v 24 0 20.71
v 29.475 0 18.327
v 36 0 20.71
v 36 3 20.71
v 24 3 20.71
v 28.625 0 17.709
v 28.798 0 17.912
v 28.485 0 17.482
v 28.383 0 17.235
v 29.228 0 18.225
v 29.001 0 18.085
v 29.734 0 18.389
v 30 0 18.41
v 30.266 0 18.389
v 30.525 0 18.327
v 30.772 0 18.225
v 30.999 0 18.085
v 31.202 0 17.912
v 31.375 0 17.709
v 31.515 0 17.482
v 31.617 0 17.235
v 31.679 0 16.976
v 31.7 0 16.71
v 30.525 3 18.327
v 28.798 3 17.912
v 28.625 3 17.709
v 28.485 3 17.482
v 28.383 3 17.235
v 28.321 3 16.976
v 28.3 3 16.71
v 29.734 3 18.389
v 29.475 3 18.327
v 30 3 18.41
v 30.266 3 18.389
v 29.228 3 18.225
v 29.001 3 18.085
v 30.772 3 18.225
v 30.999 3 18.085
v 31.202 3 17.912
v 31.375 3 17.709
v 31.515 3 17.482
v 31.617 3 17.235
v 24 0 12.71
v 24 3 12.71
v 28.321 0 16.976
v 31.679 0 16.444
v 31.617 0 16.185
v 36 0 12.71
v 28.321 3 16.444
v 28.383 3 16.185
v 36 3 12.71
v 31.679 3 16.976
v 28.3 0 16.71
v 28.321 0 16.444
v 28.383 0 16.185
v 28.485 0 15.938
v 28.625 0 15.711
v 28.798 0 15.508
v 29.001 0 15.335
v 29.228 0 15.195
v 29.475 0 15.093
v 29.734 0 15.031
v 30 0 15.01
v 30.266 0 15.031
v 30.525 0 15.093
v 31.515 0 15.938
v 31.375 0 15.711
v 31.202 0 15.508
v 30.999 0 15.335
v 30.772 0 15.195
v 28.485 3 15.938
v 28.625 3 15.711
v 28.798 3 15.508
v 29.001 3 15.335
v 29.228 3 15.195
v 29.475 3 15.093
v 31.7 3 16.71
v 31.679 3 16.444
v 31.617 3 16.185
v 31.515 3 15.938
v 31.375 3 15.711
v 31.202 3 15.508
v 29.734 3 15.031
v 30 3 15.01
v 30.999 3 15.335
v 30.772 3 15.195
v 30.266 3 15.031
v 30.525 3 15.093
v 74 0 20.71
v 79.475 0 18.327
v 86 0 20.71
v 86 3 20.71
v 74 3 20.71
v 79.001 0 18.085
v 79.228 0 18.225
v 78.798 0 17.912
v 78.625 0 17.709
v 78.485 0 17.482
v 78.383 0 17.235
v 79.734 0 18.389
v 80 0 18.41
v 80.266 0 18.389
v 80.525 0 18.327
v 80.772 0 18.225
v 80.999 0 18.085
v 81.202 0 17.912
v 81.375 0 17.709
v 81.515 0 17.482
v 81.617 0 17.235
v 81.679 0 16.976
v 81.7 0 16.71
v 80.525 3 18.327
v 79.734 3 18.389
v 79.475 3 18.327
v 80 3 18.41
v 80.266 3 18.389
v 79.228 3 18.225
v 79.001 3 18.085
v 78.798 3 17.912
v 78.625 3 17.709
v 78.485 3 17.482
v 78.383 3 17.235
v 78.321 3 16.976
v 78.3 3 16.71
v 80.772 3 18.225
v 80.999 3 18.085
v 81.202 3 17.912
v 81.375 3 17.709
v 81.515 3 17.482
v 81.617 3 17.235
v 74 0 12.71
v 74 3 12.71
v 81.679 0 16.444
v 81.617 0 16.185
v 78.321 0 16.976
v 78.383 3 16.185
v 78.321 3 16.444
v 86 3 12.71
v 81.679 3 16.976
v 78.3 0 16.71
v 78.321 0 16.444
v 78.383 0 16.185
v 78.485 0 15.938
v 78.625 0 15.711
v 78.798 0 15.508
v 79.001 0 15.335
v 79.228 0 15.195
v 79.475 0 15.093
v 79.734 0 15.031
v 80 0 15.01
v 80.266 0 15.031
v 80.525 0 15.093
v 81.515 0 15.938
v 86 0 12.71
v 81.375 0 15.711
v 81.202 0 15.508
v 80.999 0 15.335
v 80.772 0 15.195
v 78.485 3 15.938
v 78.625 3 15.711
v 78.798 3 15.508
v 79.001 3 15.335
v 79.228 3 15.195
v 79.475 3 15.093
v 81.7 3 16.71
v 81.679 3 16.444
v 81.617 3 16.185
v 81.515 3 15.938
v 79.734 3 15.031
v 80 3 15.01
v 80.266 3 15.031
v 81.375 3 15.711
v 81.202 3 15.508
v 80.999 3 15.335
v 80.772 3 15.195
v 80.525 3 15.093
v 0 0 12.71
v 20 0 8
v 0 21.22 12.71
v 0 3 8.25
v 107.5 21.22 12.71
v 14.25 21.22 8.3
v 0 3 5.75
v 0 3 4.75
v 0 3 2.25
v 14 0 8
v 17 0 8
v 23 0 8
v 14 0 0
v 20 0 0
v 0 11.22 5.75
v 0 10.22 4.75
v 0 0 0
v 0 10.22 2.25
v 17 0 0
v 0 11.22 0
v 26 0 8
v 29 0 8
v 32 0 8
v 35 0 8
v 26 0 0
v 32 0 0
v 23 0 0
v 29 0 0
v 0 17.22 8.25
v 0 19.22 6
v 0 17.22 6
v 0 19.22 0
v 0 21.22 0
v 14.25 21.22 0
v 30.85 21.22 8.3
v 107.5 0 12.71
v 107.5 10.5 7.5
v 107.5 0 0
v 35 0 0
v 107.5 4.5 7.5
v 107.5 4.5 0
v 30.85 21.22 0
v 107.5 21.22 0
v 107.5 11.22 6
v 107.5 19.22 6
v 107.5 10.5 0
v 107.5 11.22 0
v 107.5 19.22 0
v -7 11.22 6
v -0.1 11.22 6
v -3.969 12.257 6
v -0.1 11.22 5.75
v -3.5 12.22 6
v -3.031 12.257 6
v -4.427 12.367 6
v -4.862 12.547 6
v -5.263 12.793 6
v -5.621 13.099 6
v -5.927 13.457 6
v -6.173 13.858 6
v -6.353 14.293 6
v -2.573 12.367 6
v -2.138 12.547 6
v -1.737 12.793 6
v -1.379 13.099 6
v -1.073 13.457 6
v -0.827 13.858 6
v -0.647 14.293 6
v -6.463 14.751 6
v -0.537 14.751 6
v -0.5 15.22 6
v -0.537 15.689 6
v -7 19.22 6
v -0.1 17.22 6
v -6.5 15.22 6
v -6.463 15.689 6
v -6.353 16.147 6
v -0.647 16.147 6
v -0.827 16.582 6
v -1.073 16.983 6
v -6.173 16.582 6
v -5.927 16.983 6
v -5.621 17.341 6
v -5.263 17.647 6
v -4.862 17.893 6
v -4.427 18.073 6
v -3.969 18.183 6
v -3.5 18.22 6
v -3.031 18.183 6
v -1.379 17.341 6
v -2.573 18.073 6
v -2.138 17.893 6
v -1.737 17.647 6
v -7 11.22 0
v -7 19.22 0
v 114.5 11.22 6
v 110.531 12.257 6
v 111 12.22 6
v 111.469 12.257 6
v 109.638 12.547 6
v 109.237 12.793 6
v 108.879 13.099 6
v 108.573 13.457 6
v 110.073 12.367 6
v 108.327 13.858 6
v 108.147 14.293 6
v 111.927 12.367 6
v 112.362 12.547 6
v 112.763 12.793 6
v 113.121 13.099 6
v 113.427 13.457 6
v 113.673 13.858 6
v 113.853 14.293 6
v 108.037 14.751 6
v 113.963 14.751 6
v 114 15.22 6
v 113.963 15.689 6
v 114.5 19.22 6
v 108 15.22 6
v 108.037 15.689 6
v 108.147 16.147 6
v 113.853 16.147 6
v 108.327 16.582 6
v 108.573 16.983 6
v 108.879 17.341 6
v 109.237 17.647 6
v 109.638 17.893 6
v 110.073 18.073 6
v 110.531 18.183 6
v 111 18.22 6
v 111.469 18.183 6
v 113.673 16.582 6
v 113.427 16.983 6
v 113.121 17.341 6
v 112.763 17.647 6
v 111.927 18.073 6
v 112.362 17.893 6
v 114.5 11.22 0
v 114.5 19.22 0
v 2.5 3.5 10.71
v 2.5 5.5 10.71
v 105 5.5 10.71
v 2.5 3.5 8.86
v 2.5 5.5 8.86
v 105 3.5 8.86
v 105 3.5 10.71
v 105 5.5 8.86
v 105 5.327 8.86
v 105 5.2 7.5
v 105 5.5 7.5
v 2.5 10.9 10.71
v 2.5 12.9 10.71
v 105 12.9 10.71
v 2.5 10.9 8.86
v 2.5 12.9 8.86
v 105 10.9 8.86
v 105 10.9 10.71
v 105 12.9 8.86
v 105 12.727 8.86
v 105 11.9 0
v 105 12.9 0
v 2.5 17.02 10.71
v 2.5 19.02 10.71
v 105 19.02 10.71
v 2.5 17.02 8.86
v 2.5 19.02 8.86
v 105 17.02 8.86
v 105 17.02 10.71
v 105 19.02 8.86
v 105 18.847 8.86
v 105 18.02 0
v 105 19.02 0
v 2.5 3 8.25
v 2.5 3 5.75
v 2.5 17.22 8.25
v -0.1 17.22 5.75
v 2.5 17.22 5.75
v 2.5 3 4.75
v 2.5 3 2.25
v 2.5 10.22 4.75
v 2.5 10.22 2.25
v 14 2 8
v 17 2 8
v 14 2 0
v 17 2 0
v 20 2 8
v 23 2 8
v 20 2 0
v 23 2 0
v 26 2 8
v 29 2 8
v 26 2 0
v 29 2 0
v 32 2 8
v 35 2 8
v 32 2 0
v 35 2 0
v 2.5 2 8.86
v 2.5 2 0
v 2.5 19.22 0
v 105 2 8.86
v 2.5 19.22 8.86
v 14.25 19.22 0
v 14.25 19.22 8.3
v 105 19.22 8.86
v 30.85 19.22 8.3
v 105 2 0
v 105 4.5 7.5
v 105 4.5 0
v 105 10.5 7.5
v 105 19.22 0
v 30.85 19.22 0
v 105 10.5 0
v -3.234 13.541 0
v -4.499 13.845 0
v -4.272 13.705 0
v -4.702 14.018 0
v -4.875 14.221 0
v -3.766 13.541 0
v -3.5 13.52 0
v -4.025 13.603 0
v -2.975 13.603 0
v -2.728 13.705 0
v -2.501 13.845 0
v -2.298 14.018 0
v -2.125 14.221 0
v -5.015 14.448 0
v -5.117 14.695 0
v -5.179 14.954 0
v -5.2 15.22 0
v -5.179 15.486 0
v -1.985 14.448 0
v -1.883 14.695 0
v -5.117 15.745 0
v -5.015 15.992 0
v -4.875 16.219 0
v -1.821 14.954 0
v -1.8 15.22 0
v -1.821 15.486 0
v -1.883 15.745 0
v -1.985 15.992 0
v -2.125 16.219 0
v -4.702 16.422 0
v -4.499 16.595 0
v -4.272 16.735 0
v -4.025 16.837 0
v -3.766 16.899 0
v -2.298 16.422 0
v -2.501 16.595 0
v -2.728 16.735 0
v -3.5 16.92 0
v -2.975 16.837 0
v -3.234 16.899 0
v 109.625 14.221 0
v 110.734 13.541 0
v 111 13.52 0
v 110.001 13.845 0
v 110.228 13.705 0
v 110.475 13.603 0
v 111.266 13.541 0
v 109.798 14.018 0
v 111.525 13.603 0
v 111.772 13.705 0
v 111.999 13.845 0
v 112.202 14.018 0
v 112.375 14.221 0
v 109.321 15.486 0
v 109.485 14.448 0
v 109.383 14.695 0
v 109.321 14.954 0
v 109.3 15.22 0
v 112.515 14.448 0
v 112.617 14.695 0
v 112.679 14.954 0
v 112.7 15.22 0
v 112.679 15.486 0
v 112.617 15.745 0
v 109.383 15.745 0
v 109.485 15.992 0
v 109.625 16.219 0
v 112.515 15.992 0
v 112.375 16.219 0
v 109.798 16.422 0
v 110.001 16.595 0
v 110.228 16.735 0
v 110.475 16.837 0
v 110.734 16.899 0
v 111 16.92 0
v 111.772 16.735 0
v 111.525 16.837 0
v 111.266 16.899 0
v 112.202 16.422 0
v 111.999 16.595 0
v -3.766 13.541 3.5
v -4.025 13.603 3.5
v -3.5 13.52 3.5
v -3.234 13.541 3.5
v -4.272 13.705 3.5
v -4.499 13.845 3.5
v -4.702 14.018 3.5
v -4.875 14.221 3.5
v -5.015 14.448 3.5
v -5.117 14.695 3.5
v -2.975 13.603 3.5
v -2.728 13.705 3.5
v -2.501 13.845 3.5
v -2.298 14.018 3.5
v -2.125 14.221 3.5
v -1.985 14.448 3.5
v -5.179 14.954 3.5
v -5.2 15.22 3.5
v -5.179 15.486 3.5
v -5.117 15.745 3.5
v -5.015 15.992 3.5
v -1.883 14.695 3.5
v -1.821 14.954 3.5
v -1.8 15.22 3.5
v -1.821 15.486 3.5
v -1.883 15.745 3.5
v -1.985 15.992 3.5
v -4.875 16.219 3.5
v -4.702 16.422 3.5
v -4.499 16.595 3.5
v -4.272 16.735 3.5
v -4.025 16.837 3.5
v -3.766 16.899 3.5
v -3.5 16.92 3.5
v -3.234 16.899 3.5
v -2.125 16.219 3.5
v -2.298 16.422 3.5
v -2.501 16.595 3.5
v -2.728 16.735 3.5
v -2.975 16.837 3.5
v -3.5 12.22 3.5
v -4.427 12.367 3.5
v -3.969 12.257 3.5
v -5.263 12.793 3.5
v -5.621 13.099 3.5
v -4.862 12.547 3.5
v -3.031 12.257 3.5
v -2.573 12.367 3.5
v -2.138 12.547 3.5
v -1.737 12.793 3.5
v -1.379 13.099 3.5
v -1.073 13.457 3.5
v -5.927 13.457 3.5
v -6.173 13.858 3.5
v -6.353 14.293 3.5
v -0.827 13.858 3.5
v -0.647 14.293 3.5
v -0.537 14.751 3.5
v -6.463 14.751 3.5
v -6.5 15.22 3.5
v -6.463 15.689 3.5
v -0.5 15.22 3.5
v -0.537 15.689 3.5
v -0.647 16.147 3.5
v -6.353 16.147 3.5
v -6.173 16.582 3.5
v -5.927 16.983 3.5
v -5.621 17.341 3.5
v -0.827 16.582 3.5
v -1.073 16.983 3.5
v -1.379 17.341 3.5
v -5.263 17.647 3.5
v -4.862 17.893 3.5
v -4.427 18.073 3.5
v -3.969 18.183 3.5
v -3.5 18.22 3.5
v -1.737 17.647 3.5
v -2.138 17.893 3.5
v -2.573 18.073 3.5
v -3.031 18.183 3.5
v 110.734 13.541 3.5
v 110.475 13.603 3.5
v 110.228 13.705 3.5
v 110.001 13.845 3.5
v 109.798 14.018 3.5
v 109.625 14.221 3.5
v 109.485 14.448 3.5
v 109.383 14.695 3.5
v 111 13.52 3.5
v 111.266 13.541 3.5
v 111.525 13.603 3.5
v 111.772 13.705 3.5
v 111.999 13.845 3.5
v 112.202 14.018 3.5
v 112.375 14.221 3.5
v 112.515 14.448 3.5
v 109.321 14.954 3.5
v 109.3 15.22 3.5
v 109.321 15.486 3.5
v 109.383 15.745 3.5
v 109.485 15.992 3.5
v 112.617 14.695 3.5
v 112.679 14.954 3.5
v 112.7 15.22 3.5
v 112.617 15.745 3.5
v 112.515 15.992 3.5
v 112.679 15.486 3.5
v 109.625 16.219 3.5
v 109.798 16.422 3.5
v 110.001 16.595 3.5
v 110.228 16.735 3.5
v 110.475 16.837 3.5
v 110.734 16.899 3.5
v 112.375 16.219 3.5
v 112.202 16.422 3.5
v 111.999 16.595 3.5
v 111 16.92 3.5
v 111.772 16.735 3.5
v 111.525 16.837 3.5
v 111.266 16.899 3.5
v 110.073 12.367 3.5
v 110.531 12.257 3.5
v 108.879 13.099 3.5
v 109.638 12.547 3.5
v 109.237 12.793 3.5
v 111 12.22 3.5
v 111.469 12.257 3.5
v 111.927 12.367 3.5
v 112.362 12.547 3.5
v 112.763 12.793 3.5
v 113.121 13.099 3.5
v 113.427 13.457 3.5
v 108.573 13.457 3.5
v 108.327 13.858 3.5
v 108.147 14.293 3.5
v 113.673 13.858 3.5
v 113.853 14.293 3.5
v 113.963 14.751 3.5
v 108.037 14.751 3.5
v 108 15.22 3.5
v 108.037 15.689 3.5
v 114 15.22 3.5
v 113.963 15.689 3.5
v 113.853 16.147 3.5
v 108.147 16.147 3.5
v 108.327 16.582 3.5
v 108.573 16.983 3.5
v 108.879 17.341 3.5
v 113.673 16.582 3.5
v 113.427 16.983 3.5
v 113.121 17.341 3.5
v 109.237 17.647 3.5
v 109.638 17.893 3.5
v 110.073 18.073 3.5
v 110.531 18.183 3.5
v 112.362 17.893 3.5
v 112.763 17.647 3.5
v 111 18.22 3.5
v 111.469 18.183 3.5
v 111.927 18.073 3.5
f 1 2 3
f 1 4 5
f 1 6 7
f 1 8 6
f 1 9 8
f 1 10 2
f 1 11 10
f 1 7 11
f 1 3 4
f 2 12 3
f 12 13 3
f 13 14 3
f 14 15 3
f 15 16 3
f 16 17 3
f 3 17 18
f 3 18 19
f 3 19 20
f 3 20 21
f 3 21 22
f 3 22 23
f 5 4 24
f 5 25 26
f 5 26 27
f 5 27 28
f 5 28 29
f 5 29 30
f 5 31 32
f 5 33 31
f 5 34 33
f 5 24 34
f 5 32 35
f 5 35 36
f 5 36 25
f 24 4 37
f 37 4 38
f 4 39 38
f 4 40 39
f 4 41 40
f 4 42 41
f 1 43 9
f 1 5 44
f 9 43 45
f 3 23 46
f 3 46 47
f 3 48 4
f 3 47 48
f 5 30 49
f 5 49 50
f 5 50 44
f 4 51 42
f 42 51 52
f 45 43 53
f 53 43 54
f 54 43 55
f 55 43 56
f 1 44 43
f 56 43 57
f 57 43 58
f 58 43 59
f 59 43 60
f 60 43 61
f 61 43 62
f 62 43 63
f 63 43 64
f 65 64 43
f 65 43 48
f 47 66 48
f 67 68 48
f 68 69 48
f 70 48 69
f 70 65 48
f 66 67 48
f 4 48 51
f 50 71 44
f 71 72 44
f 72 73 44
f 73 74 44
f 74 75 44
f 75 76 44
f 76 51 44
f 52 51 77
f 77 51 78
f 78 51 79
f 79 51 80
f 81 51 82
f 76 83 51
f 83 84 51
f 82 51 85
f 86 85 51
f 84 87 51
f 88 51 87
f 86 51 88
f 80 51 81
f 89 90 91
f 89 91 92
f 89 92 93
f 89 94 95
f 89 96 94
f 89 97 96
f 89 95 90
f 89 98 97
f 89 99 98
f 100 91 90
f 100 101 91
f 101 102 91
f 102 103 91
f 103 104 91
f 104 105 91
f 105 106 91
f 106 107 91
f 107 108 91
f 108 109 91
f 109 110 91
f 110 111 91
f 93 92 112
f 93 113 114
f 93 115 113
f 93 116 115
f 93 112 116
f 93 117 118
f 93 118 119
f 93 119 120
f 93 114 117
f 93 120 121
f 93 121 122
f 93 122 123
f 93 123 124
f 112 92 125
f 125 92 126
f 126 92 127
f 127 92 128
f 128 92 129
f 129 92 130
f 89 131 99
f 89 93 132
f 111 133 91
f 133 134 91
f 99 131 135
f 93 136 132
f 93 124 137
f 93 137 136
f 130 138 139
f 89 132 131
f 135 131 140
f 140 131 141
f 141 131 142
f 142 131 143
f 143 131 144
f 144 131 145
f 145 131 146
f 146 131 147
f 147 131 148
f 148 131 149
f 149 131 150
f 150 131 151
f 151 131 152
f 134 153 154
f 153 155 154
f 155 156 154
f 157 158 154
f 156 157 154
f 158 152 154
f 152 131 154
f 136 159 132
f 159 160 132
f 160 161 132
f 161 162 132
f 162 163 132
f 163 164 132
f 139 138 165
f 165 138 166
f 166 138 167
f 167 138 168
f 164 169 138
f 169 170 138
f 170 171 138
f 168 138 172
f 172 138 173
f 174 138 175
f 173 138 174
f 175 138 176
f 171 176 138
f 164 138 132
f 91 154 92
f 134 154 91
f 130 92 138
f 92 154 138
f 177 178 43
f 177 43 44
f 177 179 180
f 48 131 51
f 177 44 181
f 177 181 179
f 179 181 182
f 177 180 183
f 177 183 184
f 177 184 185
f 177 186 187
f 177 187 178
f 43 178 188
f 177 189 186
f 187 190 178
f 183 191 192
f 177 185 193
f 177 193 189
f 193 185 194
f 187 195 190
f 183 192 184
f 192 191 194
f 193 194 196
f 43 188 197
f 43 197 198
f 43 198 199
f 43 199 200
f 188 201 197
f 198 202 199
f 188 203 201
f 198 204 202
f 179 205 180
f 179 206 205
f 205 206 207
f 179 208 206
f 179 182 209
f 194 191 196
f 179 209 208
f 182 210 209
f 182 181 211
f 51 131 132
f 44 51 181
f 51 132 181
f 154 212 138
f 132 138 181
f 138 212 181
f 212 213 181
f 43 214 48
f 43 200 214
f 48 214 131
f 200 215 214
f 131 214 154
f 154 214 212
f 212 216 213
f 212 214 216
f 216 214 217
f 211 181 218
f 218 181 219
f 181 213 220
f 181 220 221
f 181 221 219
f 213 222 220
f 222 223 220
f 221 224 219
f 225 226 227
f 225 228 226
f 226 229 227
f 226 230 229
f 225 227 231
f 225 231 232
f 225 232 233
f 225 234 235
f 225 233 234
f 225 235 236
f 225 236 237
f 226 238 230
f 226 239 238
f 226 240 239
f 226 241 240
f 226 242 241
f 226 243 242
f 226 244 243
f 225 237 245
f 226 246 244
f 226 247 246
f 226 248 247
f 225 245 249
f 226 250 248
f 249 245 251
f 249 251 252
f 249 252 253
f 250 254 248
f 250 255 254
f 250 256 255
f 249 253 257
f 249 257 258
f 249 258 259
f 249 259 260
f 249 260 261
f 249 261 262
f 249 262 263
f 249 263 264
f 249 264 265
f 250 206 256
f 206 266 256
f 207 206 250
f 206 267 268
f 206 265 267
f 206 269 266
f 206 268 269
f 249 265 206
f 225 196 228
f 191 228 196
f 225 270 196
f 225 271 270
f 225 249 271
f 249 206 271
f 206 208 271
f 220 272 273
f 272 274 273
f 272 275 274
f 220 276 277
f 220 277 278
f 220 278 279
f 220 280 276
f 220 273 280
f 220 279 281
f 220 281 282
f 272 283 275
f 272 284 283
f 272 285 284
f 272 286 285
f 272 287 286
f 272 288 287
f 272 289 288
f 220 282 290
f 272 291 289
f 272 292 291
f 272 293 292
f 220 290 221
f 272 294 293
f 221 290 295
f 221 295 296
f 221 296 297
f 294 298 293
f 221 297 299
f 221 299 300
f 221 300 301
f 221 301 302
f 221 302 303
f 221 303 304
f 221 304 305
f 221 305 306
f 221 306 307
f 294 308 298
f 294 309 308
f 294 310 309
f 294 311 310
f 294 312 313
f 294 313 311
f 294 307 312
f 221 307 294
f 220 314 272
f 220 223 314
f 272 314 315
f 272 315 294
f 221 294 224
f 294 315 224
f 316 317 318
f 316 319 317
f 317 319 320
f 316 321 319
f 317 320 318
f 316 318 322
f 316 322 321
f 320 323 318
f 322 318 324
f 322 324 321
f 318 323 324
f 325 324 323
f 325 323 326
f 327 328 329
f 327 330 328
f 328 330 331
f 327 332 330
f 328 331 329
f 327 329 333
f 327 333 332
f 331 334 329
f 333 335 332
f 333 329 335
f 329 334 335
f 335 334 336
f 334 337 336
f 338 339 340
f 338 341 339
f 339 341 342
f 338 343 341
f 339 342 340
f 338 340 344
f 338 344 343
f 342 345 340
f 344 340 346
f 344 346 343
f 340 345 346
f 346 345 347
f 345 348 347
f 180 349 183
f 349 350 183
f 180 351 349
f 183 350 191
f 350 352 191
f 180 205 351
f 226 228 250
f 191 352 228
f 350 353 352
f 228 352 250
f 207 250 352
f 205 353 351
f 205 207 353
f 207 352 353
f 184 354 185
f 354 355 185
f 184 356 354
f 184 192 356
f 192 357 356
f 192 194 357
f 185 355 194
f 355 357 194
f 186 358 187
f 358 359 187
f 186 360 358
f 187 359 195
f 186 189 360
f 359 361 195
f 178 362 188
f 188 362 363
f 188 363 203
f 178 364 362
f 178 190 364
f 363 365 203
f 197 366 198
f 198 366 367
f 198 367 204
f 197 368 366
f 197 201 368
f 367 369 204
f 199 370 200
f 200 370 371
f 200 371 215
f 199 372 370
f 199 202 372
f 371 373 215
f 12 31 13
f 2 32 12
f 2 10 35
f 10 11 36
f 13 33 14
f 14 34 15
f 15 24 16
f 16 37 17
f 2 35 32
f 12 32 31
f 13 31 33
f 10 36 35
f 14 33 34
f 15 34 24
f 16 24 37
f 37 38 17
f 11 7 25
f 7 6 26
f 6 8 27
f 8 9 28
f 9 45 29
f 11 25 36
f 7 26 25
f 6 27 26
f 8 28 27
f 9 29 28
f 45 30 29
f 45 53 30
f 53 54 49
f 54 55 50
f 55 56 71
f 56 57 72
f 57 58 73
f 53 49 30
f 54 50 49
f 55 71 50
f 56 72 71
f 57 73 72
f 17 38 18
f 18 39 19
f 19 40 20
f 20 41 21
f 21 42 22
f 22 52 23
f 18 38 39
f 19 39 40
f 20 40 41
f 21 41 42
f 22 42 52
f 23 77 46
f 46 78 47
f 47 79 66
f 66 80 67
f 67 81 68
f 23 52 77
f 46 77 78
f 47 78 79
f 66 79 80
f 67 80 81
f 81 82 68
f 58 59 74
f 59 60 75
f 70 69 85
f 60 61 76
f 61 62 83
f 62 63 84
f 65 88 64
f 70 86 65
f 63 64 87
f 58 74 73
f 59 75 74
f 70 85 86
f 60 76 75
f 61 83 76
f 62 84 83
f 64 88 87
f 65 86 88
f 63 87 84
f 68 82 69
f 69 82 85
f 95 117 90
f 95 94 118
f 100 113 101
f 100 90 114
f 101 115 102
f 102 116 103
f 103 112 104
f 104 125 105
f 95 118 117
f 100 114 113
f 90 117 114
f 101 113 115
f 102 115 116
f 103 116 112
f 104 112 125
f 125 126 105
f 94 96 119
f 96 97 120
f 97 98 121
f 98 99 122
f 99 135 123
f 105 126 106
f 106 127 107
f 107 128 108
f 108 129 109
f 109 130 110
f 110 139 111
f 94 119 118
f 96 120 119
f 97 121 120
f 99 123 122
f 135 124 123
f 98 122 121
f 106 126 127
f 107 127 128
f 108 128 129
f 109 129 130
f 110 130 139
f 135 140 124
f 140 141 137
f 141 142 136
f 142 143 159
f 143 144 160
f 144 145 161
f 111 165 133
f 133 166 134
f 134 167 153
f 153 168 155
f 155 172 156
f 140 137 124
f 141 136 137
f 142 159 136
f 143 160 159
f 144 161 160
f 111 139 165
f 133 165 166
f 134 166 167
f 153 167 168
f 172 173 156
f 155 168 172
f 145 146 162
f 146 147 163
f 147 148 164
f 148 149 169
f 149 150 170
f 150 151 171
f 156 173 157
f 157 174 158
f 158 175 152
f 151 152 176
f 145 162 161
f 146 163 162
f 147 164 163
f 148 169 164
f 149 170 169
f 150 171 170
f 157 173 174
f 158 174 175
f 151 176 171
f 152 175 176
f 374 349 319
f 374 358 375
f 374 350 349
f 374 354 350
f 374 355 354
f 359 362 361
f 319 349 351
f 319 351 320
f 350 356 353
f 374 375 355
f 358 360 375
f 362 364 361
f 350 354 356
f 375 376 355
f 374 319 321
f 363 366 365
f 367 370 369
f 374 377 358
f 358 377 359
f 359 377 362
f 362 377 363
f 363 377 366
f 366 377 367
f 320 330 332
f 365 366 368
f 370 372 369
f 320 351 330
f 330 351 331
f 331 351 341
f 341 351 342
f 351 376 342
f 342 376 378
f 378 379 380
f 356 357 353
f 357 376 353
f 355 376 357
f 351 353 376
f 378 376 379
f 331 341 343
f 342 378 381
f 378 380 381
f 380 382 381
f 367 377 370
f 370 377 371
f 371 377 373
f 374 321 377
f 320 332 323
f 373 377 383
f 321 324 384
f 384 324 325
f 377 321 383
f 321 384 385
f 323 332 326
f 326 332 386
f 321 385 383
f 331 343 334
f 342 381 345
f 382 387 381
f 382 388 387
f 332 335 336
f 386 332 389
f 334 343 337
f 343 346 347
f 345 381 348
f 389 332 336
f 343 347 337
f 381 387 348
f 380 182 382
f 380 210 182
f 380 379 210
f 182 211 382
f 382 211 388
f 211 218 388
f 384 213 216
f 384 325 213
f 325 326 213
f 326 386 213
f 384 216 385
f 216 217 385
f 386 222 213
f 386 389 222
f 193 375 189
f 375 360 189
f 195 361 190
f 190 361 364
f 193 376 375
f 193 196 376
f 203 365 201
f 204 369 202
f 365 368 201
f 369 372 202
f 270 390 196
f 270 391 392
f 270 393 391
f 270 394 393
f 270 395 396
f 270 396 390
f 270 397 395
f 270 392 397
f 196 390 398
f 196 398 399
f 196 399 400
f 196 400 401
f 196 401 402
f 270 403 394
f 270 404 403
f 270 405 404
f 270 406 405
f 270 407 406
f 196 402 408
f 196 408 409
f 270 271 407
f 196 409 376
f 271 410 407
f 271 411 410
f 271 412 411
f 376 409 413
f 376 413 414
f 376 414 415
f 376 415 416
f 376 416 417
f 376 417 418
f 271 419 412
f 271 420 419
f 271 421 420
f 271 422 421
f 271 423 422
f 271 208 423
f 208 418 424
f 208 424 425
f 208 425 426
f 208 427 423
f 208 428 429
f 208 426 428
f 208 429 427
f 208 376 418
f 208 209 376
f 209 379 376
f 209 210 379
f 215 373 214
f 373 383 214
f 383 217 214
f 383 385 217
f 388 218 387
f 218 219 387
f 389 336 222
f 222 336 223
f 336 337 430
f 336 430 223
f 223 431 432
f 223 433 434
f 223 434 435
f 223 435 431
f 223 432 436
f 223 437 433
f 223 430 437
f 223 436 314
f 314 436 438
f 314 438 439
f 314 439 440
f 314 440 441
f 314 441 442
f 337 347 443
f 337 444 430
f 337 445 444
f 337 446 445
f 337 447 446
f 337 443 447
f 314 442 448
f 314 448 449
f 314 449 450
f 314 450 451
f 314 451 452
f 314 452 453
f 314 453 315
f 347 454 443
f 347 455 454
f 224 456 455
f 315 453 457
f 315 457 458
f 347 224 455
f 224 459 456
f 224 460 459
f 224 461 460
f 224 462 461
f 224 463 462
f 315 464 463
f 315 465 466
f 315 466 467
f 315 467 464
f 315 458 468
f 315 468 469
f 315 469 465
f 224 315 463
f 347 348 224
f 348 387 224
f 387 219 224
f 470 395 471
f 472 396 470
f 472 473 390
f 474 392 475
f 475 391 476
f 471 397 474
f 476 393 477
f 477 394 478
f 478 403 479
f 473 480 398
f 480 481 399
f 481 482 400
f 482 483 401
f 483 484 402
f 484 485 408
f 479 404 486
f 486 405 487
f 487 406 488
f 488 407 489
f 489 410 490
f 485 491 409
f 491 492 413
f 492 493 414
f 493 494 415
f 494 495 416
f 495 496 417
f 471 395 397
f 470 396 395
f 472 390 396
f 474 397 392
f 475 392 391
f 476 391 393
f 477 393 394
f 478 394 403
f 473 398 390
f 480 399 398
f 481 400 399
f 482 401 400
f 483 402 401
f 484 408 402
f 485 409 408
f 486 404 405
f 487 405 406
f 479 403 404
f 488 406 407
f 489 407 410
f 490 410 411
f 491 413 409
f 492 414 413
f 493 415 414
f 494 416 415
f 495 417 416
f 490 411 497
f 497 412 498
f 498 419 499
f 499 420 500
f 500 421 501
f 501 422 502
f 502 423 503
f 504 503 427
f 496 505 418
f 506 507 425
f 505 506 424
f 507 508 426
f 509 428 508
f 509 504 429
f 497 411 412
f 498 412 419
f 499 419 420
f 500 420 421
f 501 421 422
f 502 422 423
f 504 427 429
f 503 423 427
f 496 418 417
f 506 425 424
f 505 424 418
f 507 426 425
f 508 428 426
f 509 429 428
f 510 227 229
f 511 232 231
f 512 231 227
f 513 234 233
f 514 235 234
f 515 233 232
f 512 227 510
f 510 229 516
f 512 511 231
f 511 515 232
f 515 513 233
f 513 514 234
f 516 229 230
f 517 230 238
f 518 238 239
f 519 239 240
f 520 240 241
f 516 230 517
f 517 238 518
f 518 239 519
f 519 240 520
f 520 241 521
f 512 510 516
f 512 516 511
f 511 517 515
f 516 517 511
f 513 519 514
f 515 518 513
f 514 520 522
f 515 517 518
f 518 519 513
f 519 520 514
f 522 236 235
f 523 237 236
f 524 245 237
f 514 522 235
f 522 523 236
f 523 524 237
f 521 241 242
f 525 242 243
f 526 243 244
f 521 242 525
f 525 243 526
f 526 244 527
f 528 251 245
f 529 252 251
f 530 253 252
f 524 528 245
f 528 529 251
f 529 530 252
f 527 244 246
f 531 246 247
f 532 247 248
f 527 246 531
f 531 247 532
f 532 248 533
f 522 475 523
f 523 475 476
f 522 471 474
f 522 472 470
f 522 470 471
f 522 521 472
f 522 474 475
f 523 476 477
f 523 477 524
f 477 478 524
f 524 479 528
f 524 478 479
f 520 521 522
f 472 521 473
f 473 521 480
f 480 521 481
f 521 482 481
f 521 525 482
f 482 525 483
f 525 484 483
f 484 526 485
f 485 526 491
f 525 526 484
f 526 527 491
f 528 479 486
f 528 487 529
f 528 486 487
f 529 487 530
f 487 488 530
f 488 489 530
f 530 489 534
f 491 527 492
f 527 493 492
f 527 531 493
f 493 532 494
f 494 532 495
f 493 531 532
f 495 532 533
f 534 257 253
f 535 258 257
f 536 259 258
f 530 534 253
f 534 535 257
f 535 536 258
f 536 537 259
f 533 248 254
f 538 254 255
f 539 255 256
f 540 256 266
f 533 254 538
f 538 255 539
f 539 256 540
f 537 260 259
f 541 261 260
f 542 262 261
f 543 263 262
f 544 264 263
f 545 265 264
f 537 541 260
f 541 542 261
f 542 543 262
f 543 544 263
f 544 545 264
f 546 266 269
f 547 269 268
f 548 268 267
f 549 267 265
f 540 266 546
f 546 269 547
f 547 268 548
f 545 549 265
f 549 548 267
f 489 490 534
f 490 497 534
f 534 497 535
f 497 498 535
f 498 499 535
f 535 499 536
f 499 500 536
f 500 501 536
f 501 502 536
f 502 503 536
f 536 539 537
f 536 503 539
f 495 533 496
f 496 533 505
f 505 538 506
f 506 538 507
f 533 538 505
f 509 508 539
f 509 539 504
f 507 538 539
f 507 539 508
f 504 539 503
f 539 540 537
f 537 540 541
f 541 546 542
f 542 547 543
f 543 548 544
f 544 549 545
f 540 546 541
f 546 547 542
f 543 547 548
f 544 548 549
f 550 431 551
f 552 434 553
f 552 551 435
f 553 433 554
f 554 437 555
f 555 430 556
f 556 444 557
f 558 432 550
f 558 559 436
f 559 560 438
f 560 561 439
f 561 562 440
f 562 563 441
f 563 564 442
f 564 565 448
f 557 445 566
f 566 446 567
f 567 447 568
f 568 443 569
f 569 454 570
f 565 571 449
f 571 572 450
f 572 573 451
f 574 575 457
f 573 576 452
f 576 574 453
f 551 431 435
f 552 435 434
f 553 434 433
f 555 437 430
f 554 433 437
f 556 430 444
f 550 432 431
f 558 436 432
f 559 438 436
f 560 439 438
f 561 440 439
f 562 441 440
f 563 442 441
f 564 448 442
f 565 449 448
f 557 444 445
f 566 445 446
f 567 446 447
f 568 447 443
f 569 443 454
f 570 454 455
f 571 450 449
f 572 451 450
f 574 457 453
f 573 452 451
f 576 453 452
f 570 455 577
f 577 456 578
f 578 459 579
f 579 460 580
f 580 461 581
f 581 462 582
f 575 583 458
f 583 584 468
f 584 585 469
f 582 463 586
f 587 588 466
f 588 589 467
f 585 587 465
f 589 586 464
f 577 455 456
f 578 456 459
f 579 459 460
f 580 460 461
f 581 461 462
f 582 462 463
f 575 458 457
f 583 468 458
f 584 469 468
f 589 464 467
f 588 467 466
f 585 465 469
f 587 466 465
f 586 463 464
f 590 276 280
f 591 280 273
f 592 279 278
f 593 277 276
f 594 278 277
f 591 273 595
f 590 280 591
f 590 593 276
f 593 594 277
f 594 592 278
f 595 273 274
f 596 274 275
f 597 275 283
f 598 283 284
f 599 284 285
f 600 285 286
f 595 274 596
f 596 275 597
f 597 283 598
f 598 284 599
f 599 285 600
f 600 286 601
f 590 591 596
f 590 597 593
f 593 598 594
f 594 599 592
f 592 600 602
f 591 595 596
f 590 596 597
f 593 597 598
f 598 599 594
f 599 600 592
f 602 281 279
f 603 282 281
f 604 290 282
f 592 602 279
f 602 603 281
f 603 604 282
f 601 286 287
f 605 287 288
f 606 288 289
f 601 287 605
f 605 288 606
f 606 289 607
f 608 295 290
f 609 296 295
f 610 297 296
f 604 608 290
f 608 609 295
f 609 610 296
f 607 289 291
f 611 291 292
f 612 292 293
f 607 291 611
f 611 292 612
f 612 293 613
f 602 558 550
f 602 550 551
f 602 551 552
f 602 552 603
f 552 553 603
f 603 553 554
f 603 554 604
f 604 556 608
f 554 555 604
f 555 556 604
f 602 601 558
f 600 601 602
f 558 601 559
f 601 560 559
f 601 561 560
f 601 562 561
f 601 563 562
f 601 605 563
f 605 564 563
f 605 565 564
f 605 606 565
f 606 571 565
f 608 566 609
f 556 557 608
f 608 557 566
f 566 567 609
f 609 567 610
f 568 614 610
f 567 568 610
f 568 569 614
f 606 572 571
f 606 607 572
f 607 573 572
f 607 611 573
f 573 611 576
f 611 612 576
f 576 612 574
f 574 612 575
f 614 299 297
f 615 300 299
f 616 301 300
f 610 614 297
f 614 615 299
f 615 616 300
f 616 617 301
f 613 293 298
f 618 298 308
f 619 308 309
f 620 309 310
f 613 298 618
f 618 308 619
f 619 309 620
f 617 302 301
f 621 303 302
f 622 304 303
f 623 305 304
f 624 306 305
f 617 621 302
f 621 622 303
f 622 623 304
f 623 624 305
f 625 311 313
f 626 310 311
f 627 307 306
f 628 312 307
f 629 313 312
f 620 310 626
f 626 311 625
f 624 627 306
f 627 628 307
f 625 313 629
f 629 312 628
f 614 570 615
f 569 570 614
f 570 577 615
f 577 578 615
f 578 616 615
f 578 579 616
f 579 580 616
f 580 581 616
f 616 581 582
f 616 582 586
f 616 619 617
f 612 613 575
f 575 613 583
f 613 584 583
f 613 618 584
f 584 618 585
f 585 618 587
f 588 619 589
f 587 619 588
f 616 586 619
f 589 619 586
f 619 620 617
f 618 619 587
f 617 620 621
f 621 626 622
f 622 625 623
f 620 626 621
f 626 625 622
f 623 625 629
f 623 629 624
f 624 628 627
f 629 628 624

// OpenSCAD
// file: make_co_clamshell.scad
// ============================================================================
// CyberWing — CO sensor CLAMSHELL CARD CAGE (SPEC 3-board stick)
// The stick is 3 detachable boards on header plugs (CP2102 USB / D-ULPSM AFE /
// SPEC PSCB cell). Vertical-split clamshell: each half-shell carries 3 groove
// tiers; the assembled stack LAYS IN sideways (no sliding stress on the header
// joints), the second half closes over, 2× M3 screws through end lugs.
// Crack it open to swap any single layer (the cell board is the consumable).
//   X = length (cell end x=0, USB +X) ; Y = split at 0 ; Z = up.
// Cell module + membrane face UP through an open ceiling window. Vented cell
// end + floor. Print halves seam-face down (no supports).
// part = "A" (screw-head half) | "B" (pilot half) | "both" (assembled view)
// ============================================================================
$fn = 40;
part = "both";

// ---- measured stack ----
PCB_W = 20.92; PCB_T = 1.6;
GAP1 = 5.80;                // USB board -> AFE (measured)
GAP2 = 4.52;                // AFE -> cell board (derived from 15.12; CONFIRM)
CELL_X = 19.80;             // cell module center from the cell end
MOD_SQ = 15.58;             // black cell module side
PLUG_PROT = 12;             // USB-A metal beyond the board end (std; CONFIRM)
STICK_L = 114.00;           // overall incl. plug

// ---- cage ----
ENG = 1.6; WALL = 2.0; FLOOR = 2.0; TOP = 2.0; END = 2.5;
FLR_GAP = 1.5; SLOT_H = PCB_T + 0.4; CEIL_CLR = 0.6;
WIN = 16.6;                 // ceiling window over the module
USB_W = 15; USB_H = 6;      // end aperture (plug passes, boards can't)
EAR_X = [30, 80]; M3 = 3.4;

// ---- derived ----
b1 = FLR_GAP;                       // USB board bottom
b2 = b1 + PCB_T + GAP1;             // AFE bottom
b3 = b2 + PCB_T + GAP2;             // cell board bottom
IH = b3 + PCB_T + CEIL_CLR;
OH = FLOOR + IH + TOP;
RIBY = PCB_W/2 - ENG;               // rib inner face
GFLR = PCB_W/2 + 0.25;              // groove floor
OW = 2*(GFLR + WALL);
CAV_L = STICK_L - PLUG_PROT + 0.5;  // boards only; plug exits the end wall
OL = END + CAV_L + END;
x_cell = END + 0.25 + CELL_X;
lugs = [[-3.5, OH-6], [OL+3.5, OH-6]];   // [x, z] screw centers, both ends up top

module shell() {
  difference() {
    union() {
      translate([0, -OW/2, 0]) cube([OL, OW, OH]);                      // body
      translate([-7, -6, OH-10]) cube([7, 12, 8]);                      // -X lug
      translate([OL, -6, OH-10]) cube([7, 12, 8]);                      // +X lug
      for (x = EAR_X, sy = [-1,1])                                      // 4 ears
        translate([x-6, sy>0 ? OW/2 : -OW/2-8, 0]) cube([12, 8, 3]);
    }
    translate([END, -RIBY, FLOOR]) cube([CAV_L, 2*RIBY, IH]);           // cavity between ribs
    for (tb = [b1, b2, b3])                                             // 3 groove tiers
      translate([END, -GFLR, FLOOR+tb]) cube([CAV_L, 2*GFLR, SLOT_H]);
    translate([x_cell-WIN/2, -WIN/2, FLOOR+IH-0.1])                     // open cell window
      cube([WIN, WIN, TOP+0.2]);
    translate([OL-END-0.1, -USB_W/2, FLOOR+b1+PCB_T-0.6])               // USB aperture
      cube([END+0.2, USB_W, USB_H]);
    for (vy = [-7, 7])                                                  // outer cell-end vents (full height, beside the lug)
      translate([-0.1, vy-1.25, FLOOR+1]) cube([END+0.2, 2.5, IH-3]);
    for (vy = [-3.5, 3.5])                                              // inner vents stop below the lug — solid wall behind the screw boss
      translate([-0.1, vy-1.25, FLOOR+1]) cube([END+0.2, 2.5, (OH-11)-(FLOOR+1)]);
    for (vx = [14, 20, 26, 32])                                         // floor vents under the cell
      translate([vx, -8, -0.1]) cube([3, 16, FLOOR+0.2]);
    for (x = EAR_X, sy = [-1,1])                                        // ear M3
      translate([x, sy*(OW/2+4), -0.1]) cylinder(d=M3, h=3.2);
    for (p = lugs)                                                      // lug pilots (M3 self-tap in B)
      translate([p[0], -6.1, p[1]]) rotate([-90,0,0]) cylinder(d=2.8, h=12.2);
  }
}

module halfA() {                       // y<0, screw heads
  difference() {
    intersection() { shell(); translate([-60,-60,-5]) cube([OL+120, 60, OH+20]); }
    for (p = lugs) {
      translate([p[0], -6.1, p[1]]) rotate([-90,0,0]) cylinder(d=M3, h=6.2);      // clearance
      translate([p[0], -6.1, p[1]]) rotate([-90,0,0]) cylinder(d=6, h=2.6);       // head cb
    }
  }
}
module halfB() intersection() { shell(); translate([-60,0,-5]) cube([OL+120, 60, OH+20]); }

if (part=="both") { color("SteelBlue") halfA(); color("LightGreen") halfB(); }
if (part=="A") rotate([-90,0,0]) halfA();     // seam-face down for printing
if (part=="B") rotate([90,0,0])  halfB();
// main file
// ============================================================================
// CO clamshell — HALF A (screw-head half). Geometry lives in
// make_co_clamshell.scad; this file just poses it. orient = "print" (seam-face
// down, as sliced) or "assembled" (in-place, y<0 half).
// ============================================================================
use <make_co_clamshell.scad>
orient = "print";

if (orient == "print") rotate([-90,0,0]) halfA();
else halfA();
